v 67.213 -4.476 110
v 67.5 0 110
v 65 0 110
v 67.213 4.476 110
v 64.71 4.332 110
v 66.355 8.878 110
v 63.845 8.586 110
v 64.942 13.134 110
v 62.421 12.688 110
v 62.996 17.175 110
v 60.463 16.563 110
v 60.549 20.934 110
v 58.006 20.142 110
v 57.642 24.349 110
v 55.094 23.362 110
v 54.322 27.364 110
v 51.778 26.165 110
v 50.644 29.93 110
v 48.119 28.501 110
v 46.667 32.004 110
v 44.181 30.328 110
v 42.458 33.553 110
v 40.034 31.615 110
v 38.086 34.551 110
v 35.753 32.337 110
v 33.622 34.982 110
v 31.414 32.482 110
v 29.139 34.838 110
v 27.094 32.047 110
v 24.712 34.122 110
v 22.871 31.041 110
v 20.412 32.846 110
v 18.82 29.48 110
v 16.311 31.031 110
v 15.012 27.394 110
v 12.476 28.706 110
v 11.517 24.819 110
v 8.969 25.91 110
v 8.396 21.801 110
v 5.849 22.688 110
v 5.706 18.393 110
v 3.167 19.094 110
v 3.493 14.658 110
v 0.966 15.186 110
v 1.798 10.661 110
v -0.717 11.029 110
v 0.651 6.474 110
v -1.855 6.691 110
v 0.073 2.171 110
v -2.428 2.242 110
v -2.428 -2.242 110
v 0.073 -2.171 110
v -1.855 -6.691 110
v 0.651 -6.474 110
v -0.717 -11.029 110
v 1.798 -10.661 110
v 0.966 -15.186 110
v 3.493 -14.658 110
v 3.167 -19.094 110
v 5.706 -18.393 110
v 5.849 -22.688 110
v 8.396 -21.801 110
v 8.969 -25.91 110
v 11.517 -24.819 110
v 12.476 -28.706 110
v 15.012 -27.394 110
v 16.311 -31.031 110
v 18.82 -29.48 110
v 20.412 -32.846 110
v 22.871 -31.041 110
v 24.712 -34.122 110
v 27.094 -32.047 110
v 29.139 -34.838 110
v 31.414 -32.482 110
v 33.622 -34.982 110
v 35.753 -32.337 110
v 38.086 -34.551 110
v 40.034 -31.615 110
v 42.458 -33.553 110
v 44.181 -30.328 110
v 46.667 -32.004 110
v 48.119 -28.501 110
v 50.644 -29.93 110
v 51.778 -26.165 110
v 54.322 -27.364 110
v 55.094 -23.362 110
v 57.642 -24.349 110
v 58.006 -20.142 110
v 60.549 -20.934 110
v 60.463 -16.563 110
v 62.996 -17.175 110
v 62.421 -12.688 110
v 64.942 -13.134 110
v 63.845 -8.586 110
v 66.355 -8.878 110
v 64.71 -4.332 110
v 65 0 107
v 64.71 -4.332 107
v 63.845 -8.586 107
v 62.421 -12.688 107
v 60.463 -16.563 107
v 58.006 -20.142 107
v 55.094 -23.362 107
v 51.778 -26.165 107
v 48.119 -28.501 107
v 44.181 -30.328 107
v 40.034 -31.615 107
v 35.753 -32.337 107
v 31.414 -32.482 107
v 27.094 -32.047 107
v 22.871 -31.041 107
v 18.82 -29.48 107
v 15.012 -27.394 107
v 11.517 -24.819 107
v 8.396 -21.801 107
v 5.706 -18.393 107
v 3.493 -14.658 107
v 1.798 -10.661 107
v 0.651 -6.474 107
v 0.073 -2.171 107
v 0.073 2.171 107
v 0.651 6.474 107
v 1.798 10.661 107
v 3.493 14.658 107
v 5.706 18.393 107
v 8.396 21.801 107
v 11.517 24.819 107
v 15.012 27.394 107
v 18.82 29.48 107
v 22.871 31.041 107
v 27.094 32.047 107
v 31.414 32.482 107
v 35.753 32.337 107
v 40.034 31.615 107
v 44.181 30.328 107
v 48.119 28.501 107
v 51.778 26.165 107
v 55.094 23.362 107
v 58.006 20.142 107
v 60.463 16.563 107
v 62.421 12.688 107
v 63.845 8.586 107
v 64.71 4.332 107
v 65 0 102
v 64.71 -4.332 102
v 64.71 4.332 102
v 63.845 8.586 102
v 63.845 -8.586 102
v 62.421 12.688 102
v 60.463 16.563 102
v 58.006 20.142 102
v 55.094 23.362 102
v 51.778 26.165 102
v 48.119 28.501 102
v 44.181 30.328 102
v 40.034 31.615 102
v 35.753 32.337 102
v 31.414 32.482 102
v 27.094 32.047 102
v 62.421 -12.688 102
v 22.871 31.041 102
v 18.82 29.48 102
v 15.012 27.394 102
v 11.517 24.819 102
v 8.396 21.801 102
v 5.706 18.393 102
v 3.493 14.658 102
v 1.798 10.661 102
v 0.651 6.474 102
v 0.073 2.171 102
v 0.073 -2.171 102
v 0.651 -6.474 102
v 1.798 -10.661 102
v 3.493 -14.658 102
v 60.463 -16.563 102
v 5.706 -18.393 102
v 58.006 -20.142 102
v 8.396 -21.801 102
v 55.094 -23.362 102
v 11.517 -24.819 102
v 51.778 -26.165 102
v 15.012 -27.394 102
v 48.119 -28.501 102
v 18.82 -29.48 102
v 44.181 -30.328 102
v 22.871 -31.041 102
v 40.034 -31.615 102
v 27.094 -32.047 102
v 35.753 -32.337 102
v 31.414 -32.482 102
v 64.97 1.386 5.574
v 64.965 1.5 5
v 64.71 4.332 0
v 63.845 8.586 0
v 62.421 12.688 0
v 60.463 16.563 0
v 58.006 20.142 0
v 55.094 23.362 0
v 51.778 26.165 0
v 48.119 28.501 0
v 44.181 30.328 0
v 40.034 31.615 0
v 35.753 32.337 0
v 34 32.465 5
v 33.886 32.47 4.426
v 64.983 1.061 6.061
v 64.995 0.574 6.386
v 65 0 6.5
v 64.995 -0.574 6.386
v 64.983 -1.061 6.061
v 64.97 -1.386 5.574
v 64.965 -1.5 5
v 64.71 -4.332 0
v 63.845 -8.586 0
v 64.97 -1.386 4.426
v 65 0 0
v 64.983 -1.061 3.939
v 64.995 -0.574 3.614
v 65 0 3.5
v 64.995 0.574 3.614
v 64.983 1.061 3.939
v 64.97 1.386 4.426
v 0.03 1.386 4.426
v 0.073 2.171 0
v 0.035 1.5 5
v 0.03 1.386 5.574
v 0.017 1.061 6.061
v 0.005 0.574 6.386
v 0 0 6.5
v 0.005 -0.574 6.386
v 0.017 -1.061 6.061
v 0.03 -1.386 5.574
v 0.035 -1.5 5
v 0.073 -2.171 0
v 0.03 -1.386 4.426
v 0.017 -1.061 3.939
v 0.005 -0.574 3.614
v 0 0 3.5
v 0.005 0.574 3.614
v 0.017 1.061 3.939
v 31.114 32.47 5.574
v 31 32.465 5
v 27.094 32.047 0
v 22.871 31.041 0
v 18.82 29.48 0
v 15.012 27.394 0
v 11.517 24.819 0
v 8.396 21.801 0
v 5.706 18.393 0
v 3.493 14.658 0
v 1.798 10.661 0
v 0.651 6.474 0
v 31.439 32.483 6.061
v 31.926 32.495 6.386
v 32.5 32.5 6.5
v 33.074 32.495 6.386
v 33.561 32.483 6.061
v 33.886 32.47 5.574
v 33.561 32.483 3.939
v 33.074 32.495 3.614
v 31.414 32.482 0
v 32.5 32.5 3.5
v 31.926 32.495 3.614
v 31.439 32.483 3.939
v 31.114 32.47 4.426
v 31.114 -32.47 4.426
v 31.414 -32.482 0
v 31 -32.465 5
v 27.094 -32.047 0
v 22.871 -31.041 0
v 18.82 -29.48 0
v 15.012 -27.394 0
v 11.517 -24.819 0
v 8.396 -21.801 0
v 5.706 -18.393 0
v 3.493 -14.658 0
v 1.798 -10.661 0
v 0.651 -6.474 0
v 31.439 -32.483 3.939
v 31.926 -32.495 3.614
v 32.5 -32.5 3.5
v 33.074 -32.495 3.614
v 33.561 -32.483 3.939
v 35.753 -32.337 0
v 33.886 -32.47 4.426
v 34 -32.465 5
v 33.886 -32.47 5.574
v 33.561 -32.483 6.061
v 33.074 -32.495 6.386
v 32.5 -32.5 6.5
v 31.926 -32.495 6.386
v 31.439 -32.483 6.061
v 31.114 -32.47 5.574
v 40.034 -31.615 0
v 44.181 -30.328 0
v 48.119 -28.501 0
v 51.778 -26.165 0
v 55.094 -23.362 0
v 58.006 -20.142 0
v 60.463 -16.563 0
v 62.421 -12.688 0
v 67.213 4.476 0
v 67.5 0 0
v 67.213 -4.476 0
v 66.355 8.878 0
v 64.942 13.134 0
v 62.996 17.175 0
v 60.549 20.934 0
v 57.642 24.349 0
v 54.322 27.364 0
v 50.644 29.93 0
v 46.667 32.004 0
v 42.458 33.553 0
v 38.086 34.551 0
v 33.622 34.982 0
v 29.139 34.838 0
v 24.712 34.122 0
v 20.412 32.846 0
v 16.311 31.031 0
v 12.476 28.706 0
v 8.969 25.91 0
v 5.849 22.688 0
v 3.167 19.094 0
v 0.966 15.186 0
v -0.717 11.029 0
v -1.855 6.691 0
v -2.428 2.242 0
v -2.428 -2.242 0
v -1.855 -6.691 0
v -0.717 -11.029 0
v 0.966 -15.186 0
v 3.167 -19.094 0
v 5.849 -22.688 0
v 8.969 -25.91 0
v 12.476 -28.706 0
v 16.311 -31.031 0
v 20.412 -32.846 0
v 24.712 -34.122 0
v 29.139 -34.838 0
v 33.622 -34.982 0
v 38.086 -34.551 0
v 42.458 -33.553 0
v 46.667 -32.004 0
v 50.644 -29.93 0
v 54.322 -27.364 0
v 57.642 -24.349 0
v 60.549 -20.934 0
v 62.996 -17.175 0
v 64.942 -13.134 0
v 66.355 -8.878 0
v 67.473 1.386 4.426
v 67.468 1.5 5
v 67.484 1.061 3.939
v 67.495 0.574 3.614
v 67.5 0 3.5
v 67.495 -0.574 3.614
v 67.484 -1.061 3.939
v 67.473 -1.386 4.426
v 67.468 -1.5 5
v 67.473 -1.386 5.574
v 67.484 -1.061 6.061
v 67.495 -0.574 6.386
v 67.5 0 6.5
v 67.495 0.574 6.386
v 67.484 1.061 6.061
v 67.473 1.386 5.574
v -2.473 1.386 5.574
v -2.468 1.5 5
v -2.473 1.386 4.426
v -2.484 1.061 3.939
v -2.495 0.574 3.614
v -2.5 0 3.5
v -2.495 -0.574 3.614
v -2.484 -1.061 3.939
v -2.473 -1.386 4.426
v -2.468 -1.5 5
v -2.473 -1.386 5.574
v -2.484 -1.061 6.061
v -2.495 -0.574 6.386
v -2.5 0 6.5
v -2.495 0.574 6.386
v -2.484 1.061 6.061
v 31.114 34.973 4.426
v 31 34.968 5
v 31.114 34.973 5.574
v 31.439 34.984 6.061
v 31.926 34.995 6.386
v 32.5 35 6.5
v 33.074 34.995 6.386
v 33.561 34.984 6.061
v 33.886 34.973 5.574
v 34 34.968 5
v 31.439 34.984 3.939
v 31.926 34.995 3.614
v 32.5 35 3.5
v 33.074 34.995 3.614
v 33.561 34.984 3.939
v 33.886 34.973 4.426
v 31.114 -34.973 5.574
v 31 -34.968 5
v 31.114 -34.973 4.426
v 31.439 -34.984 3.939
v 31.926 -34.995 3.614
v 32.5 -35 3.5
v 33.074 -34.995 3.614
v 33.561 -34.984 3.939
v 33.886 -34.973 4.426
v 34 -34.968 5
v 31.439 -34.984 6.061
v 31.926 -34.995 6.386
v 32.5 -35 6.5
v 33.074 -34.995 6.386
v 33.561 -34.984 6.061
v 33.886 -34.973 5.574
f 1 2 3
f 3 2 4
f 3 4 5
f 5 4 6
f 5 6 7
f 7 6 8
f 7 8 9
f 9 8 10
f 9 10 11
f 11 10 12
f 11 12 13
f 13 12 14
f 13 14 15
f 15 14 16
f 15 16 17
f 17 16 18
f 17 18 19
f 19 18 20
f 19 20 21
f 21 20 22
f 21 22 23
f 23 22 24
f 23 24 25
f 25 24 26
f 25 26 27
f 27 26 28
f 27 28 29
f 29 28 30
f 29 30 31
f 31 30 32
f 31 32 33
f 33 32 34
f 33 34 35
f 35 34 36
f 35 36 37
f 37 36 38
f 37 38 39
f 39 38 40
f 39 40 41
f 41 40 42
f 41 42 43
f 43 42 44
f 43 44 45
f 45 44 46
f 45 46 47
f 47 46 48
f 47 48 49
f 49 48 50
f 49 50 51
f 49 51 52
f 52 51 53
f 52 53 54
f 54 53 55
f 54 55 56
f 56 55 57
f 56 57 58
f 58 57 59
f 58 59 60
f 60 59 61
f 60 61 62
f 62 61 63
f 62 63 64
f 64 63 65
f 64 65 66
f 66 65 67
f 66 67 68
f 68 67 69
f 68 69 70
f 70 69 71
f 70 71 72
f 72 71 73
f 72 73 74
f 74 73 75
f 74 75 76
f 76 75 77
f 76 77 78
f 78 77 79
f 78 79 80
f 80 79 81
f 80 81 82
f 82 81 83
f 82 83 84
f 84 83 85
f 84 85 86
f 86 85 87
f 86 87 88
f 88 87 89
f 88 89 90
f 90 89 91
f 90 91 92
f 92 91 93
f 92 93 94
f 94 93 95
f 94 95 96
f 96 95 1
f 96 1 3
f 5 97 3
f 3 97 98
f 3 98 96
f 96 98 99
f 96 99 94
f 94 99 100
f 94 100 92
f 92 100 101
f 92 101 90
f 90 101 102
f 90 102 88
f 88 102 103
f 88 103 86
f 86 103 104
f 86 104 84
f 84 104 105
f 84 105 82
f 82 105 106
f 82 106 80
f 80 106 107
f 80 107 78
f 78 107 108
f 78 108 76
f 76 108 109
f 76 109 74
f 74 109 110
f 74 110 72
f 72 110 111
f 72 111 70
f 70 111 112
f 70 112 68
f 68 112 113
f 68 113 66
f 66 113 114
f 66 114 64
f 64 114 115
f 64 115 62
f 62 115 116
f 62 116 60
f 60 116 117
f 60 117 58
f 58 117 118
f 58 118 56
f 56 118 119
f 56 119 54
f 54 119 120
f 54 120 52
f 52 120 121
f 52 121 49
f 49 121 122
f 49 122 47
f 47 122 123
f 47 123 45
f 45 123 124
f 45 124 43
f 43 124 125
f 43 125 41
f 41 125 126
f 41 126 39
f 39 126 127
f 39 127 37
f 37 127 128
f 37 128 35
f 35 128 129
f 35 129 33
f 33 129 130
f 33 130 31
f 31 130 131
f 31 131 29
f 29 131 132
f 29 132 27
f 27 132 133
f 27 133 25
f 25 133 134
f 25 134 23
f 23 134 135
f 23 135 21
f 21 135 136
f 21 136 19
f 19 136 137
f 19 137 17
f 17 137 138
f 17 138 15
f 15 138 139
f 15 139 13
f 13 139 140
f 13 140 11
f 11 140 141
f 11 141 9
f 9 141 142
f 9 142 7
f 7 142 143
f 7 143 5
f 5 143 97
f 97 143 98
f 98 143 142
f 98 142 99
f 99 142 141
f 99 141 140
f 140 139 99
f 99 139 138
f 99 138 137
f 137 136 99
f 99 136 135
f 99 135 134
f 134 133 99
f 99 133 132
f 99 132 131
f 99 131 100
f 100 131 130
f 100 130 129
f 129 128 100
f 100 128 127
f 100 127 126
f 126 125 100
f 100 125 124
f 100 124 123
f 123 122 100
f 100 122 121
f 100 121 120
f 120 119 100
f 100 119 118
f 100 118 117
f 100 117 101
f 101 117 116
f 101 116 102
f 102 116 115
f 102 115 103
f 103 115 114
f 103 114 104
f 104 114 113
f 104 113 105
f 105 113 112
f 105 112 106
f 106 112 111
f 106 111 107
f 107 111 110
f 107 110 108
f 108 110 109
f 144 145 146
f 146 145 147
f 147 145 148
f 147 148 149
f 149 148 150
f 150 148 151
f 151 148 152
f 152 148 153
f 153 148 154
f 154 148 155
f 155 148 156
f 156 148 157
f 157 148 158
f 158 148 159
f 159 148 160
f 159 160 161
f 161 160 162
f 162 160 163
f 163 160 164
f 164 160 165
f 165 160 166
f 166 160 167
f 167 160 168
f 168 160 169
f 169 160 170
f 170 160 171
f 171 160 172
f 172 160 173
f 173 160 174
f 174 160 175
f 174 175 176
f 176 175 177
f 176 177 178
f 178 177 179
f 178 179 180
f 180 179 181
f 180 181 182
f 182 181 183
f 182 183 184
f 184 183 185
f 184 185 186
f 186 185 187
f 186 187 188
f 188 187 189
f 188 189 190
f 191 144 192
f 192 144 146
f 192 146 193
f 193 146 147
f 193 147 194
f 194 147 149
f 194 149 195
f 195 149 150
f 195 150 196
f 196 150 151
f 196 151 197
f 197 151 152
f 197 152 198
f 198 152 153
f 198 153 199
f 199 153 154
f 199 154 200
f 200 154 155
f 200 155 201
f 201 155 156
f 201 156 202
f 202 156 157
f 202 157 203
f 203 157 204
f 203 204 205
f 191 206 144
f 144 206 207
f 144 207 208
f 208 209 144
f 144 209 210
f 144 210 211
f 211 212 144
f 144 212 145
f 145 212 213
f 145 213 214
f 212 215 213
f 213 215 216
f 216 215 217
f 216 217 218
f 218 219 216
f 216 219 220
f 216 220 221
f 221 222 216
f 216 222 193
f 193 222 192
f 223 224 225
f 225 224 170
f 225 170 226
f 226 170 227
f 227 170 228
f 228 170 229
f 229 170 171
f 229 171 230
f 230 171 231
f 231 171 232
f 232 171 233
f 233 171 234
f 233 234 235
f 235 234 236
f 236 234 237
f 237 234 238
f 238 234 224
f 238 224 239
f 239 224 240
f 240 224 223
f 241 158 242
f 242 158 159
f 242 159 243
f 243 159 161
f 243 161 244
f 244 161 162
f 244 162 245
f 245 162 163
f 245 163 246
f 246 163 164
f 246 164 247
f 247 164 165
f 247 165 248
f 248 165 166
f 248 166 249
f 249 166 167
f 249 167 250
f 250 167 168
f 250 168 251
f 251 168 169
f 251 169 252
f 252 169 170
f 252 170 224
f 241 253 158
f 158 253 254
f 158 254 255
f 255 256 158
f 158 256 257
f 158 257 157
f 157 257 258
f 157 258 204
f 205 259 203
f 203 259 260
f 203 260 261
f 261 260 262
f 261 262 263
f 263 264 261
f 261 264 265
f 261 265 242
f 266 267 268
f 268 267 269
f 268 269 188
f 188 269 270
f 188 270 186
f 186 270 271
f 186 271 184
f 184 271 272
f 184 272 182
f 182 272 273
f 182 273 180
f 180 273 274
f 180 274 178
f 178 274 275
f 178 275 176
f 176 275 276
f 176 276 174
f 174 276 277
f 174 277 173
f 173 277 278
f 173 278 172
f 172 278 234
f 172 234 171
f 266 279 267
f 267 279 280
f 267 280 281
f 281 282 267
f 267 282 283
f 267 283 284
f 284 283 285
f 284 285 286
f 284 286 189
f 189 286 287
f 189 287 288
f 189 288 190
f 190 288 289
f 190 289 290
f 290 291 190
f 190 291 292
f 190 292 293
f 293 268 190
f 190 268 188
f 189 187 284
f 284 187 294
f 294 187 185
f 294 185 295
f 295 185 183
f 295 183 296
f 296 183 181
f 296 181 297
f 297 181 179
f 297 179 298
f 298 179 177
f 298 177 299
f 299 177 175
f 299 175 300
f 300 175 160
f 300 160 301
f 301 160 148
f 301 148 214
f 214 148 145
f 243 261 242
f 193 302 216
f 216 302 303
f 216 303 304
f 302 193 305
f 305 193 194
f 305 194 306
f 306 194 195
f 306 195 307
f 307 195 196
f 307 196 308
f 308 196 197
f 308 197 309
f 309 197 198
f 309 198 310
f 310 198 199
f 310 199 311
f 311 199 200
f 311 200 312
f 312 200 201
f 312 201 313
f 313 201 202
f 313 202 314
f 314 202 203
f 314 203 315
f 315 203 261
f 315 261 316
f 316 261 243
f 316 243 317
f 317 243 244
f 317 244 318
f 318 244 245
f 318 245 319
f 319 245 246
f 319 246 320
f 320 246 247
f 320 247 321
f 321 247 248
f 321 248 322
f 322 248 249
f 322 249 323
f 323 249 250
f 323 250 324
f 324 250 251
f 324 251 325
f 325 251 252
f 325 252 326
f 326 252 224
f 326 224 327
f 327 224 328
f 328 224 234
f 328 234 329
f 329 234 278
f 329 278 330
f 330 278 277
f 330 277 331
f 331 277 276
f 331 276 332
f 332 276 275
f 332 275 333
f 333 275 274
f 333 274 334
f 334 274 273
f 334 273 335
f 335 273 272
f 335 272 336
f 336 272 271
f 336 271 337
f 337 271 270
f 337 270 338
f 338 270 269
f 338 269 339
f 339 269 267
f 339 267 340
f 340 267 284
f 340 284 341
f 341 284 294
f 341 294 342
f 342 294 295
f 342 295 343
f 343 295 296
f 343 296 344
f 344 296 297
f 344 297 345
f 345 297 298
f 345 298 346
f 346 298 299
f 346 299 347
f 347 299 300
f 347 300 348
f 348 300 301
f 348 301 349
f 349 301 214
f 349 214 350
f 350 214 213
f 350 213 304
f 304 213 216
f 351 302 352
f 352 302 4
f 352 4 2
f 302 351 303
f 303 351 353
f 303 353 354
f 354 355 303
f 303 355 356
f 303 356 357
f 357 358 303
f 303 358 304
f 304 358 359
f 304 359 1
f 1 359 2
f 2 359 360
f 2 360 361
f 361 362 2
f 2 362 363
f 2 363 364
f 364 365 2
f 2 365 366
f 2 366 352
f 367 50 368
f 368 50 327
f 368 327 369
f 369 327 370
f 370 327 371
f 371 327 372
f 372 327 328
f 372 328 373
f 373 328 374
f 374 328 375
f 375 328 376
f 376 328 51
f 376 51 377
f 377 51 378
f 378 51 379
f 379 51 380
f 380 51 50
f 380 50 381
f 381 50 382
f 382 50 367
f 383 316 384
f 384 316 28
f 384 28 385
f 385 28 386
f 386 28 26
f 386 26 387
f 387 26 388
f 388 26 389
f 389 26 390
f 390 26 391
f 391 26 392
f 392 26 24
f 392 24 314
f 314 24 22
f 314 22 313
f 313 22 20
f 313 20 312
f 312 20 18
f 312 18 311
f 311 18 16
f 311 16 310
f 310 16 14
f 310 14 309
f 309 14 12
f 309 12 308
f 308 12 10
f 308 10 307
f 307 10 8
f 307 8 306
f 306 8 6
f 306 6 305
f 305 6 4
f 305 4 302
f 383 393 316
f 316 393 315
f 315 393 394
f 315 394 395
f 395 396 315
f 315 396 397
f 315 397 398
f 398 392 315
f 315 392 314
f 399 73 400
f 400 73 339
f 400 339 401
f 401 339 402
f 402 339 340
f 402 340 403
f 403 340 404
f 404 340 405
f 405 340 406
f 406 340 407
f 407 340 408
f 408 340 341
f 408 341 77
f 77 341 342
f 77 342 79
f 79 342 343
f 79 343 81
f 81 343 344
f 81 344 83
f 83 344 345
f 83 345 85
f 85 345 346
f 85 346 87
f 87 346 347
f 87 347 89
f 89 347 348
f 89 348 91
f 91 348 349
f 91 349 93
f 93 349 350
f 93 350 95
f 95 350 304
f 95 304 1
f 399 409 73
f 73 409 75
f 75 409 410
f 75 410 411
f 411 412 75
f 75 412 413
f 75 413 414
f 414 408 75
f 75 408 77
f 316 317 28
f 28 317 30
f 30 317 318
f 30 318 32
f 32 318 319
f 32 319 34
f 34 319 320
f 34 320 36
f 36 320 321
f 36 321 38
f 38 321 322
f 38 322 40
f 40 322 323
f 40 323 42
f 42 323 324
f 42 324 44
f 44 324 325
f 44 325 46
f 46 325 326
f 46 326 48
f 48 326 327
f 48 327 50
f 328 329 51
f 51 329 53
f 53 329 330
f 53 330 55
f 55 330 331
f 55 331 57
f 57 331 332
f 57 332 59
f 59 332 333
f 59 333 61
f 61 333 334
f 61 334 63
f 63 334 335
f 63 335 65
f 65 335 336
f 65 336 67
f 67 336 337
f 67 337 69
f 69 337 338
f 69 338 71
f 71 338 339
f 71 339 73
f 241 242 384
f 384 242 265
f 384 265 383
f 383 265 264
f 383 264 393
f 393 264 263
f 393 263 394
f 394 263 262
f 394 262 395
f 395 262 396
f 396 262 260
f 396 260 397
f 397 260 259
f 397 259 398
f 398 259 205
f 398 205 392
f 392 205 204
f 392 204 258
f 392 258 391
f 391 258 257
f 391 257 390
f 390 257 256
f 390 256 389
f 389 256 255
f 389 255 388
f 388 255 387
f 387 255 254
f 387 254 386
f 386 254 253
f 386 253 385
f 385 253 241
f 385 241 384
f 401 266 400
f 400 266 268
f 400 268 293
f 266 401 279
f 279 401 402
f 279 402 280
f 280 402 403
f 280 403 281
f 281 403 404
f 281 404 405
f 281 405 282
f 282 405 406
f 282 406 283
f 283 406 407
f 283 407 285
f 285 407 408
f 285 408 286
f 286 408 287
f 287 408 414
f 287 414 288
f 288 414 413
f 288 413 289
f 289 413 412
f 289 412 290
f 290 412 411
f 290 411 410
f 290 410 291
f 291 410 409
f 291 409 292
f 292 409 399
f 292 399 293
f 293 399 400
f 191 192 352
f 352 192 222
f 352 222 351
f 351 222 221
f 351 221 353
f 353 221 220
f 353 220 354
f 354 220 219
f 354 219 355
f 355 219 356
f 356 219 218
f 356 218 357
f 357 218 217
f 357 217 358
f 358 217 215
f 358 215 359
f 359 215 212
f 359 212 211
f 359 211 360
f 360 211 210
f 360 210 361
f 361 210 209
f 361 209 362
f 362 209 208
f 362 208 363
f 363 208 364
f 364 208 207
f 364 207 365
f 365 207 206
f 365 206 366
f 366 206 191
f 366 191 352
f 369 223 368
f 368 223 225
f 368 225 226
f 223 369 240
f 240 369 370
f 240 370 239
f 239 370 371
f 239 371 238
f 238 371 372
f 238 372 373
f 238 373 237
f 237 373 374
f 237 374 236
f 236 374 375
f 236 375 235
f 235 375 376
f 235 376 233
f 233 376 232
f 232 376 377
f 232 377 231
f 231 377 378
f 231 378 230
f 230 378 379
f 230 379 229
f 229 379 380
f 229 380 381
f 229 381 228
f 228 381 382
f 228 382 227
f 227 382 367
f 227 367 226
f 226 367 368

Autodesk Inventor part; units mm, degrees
ref_plane "YZ Plane" through (0, 0, 0) normal (1, 0, 0) x (0, 1, 0)
ref_plane "XZ Plane" through (0, 0, 0) normal (0, 1, 0) x (-1, 0, 0)
ref_plane "XY Plane" through (0, 0, 0) normal (0, 0, 1) x (1, 0, 0)
sketch "Sketch1" plane through (0, 0, 0) normal (0, 1, 0) x (-1, 0, 0)
  line L0 (-67.5, -60) -> (-67.5, 0)
  line L1 (2.5, -60) -> (2.5, 0)
  line L2 (-67.5, 0) -> (2.5, 0)
  line L3 (-32.5, 0) -> (-32.5, 110)
  line L4 (2.5, -60) -> (-67.5, -60) projected
  line L5 (-67.5, 0) -> (-67.5, 110)
  line L6 (-65, 0) -> (-65, -30)
  line L7 (0, 0) -> (0, -30)
  line L8 (-65, 0) -> (-65, 110)
  line L9 (-65, 110) -> (-67.5, 110)
  line L10 (-65, 0) -> (-67.5, 0)
  line L11 (-65, 107) -> (-32.5, 107)
  line L12 (-32.5, 107) -> (-32.5, 102)
  line L13 (-32.5, 102) -> (-65, 102)
  line L14 (-65, 102) -> (-65, 107)
  dimension "d1" = 170
  dimension "d2" = 5
  dimension "d3" = 3
revolve "Revolution1" add sketch "Sketch1" angle 360 about axis through (32.5, 0, 0) along (0, 0, 1) contours L5 L9 L8 L2 | L8 L11 L3 L13
sketch "Sketch2" plane through (0, 0, 0) normal (0, 1, 0) x (-1, 0, 0)
  line L0 (2.5, 0) -> (-67.5, 0) projected
  line L1 (2.5, 110) -> (-67.5, 110) projected
  line L2 (-32.5, 0) -> (-32.5, 5)
  circle A0 centre (-32.5, 5) radius 1.5
  point P0 (0, 0)
  dimension "d5" = 5
  dimension "d6" = 3
extrude "Extrusion1" cut sketch "Sketch2" along normal through all both and the other way through all
sketch "Sketch3" plane through (0, 0, 0) normal (1, 0, 0) x (0, 1, 0)
  line L0 (35, 0) -> (-35, 0) projected
  line L1 (35, 110) -> (-35, 110) projected
  line L2 (0, 0) -> (0, 5)
  circle A0 centre (0, 5) radius 1.5
  point P0 (34.9678, 5)
  point P1 (-34.9678, 5)
  dimension "d9" = 5
  dimension "d10" = 3
extrude "Extrusion2" cut sketch "Sketch3" along normal through all both and the other way through all
properties part number "GrundkörperOben"
